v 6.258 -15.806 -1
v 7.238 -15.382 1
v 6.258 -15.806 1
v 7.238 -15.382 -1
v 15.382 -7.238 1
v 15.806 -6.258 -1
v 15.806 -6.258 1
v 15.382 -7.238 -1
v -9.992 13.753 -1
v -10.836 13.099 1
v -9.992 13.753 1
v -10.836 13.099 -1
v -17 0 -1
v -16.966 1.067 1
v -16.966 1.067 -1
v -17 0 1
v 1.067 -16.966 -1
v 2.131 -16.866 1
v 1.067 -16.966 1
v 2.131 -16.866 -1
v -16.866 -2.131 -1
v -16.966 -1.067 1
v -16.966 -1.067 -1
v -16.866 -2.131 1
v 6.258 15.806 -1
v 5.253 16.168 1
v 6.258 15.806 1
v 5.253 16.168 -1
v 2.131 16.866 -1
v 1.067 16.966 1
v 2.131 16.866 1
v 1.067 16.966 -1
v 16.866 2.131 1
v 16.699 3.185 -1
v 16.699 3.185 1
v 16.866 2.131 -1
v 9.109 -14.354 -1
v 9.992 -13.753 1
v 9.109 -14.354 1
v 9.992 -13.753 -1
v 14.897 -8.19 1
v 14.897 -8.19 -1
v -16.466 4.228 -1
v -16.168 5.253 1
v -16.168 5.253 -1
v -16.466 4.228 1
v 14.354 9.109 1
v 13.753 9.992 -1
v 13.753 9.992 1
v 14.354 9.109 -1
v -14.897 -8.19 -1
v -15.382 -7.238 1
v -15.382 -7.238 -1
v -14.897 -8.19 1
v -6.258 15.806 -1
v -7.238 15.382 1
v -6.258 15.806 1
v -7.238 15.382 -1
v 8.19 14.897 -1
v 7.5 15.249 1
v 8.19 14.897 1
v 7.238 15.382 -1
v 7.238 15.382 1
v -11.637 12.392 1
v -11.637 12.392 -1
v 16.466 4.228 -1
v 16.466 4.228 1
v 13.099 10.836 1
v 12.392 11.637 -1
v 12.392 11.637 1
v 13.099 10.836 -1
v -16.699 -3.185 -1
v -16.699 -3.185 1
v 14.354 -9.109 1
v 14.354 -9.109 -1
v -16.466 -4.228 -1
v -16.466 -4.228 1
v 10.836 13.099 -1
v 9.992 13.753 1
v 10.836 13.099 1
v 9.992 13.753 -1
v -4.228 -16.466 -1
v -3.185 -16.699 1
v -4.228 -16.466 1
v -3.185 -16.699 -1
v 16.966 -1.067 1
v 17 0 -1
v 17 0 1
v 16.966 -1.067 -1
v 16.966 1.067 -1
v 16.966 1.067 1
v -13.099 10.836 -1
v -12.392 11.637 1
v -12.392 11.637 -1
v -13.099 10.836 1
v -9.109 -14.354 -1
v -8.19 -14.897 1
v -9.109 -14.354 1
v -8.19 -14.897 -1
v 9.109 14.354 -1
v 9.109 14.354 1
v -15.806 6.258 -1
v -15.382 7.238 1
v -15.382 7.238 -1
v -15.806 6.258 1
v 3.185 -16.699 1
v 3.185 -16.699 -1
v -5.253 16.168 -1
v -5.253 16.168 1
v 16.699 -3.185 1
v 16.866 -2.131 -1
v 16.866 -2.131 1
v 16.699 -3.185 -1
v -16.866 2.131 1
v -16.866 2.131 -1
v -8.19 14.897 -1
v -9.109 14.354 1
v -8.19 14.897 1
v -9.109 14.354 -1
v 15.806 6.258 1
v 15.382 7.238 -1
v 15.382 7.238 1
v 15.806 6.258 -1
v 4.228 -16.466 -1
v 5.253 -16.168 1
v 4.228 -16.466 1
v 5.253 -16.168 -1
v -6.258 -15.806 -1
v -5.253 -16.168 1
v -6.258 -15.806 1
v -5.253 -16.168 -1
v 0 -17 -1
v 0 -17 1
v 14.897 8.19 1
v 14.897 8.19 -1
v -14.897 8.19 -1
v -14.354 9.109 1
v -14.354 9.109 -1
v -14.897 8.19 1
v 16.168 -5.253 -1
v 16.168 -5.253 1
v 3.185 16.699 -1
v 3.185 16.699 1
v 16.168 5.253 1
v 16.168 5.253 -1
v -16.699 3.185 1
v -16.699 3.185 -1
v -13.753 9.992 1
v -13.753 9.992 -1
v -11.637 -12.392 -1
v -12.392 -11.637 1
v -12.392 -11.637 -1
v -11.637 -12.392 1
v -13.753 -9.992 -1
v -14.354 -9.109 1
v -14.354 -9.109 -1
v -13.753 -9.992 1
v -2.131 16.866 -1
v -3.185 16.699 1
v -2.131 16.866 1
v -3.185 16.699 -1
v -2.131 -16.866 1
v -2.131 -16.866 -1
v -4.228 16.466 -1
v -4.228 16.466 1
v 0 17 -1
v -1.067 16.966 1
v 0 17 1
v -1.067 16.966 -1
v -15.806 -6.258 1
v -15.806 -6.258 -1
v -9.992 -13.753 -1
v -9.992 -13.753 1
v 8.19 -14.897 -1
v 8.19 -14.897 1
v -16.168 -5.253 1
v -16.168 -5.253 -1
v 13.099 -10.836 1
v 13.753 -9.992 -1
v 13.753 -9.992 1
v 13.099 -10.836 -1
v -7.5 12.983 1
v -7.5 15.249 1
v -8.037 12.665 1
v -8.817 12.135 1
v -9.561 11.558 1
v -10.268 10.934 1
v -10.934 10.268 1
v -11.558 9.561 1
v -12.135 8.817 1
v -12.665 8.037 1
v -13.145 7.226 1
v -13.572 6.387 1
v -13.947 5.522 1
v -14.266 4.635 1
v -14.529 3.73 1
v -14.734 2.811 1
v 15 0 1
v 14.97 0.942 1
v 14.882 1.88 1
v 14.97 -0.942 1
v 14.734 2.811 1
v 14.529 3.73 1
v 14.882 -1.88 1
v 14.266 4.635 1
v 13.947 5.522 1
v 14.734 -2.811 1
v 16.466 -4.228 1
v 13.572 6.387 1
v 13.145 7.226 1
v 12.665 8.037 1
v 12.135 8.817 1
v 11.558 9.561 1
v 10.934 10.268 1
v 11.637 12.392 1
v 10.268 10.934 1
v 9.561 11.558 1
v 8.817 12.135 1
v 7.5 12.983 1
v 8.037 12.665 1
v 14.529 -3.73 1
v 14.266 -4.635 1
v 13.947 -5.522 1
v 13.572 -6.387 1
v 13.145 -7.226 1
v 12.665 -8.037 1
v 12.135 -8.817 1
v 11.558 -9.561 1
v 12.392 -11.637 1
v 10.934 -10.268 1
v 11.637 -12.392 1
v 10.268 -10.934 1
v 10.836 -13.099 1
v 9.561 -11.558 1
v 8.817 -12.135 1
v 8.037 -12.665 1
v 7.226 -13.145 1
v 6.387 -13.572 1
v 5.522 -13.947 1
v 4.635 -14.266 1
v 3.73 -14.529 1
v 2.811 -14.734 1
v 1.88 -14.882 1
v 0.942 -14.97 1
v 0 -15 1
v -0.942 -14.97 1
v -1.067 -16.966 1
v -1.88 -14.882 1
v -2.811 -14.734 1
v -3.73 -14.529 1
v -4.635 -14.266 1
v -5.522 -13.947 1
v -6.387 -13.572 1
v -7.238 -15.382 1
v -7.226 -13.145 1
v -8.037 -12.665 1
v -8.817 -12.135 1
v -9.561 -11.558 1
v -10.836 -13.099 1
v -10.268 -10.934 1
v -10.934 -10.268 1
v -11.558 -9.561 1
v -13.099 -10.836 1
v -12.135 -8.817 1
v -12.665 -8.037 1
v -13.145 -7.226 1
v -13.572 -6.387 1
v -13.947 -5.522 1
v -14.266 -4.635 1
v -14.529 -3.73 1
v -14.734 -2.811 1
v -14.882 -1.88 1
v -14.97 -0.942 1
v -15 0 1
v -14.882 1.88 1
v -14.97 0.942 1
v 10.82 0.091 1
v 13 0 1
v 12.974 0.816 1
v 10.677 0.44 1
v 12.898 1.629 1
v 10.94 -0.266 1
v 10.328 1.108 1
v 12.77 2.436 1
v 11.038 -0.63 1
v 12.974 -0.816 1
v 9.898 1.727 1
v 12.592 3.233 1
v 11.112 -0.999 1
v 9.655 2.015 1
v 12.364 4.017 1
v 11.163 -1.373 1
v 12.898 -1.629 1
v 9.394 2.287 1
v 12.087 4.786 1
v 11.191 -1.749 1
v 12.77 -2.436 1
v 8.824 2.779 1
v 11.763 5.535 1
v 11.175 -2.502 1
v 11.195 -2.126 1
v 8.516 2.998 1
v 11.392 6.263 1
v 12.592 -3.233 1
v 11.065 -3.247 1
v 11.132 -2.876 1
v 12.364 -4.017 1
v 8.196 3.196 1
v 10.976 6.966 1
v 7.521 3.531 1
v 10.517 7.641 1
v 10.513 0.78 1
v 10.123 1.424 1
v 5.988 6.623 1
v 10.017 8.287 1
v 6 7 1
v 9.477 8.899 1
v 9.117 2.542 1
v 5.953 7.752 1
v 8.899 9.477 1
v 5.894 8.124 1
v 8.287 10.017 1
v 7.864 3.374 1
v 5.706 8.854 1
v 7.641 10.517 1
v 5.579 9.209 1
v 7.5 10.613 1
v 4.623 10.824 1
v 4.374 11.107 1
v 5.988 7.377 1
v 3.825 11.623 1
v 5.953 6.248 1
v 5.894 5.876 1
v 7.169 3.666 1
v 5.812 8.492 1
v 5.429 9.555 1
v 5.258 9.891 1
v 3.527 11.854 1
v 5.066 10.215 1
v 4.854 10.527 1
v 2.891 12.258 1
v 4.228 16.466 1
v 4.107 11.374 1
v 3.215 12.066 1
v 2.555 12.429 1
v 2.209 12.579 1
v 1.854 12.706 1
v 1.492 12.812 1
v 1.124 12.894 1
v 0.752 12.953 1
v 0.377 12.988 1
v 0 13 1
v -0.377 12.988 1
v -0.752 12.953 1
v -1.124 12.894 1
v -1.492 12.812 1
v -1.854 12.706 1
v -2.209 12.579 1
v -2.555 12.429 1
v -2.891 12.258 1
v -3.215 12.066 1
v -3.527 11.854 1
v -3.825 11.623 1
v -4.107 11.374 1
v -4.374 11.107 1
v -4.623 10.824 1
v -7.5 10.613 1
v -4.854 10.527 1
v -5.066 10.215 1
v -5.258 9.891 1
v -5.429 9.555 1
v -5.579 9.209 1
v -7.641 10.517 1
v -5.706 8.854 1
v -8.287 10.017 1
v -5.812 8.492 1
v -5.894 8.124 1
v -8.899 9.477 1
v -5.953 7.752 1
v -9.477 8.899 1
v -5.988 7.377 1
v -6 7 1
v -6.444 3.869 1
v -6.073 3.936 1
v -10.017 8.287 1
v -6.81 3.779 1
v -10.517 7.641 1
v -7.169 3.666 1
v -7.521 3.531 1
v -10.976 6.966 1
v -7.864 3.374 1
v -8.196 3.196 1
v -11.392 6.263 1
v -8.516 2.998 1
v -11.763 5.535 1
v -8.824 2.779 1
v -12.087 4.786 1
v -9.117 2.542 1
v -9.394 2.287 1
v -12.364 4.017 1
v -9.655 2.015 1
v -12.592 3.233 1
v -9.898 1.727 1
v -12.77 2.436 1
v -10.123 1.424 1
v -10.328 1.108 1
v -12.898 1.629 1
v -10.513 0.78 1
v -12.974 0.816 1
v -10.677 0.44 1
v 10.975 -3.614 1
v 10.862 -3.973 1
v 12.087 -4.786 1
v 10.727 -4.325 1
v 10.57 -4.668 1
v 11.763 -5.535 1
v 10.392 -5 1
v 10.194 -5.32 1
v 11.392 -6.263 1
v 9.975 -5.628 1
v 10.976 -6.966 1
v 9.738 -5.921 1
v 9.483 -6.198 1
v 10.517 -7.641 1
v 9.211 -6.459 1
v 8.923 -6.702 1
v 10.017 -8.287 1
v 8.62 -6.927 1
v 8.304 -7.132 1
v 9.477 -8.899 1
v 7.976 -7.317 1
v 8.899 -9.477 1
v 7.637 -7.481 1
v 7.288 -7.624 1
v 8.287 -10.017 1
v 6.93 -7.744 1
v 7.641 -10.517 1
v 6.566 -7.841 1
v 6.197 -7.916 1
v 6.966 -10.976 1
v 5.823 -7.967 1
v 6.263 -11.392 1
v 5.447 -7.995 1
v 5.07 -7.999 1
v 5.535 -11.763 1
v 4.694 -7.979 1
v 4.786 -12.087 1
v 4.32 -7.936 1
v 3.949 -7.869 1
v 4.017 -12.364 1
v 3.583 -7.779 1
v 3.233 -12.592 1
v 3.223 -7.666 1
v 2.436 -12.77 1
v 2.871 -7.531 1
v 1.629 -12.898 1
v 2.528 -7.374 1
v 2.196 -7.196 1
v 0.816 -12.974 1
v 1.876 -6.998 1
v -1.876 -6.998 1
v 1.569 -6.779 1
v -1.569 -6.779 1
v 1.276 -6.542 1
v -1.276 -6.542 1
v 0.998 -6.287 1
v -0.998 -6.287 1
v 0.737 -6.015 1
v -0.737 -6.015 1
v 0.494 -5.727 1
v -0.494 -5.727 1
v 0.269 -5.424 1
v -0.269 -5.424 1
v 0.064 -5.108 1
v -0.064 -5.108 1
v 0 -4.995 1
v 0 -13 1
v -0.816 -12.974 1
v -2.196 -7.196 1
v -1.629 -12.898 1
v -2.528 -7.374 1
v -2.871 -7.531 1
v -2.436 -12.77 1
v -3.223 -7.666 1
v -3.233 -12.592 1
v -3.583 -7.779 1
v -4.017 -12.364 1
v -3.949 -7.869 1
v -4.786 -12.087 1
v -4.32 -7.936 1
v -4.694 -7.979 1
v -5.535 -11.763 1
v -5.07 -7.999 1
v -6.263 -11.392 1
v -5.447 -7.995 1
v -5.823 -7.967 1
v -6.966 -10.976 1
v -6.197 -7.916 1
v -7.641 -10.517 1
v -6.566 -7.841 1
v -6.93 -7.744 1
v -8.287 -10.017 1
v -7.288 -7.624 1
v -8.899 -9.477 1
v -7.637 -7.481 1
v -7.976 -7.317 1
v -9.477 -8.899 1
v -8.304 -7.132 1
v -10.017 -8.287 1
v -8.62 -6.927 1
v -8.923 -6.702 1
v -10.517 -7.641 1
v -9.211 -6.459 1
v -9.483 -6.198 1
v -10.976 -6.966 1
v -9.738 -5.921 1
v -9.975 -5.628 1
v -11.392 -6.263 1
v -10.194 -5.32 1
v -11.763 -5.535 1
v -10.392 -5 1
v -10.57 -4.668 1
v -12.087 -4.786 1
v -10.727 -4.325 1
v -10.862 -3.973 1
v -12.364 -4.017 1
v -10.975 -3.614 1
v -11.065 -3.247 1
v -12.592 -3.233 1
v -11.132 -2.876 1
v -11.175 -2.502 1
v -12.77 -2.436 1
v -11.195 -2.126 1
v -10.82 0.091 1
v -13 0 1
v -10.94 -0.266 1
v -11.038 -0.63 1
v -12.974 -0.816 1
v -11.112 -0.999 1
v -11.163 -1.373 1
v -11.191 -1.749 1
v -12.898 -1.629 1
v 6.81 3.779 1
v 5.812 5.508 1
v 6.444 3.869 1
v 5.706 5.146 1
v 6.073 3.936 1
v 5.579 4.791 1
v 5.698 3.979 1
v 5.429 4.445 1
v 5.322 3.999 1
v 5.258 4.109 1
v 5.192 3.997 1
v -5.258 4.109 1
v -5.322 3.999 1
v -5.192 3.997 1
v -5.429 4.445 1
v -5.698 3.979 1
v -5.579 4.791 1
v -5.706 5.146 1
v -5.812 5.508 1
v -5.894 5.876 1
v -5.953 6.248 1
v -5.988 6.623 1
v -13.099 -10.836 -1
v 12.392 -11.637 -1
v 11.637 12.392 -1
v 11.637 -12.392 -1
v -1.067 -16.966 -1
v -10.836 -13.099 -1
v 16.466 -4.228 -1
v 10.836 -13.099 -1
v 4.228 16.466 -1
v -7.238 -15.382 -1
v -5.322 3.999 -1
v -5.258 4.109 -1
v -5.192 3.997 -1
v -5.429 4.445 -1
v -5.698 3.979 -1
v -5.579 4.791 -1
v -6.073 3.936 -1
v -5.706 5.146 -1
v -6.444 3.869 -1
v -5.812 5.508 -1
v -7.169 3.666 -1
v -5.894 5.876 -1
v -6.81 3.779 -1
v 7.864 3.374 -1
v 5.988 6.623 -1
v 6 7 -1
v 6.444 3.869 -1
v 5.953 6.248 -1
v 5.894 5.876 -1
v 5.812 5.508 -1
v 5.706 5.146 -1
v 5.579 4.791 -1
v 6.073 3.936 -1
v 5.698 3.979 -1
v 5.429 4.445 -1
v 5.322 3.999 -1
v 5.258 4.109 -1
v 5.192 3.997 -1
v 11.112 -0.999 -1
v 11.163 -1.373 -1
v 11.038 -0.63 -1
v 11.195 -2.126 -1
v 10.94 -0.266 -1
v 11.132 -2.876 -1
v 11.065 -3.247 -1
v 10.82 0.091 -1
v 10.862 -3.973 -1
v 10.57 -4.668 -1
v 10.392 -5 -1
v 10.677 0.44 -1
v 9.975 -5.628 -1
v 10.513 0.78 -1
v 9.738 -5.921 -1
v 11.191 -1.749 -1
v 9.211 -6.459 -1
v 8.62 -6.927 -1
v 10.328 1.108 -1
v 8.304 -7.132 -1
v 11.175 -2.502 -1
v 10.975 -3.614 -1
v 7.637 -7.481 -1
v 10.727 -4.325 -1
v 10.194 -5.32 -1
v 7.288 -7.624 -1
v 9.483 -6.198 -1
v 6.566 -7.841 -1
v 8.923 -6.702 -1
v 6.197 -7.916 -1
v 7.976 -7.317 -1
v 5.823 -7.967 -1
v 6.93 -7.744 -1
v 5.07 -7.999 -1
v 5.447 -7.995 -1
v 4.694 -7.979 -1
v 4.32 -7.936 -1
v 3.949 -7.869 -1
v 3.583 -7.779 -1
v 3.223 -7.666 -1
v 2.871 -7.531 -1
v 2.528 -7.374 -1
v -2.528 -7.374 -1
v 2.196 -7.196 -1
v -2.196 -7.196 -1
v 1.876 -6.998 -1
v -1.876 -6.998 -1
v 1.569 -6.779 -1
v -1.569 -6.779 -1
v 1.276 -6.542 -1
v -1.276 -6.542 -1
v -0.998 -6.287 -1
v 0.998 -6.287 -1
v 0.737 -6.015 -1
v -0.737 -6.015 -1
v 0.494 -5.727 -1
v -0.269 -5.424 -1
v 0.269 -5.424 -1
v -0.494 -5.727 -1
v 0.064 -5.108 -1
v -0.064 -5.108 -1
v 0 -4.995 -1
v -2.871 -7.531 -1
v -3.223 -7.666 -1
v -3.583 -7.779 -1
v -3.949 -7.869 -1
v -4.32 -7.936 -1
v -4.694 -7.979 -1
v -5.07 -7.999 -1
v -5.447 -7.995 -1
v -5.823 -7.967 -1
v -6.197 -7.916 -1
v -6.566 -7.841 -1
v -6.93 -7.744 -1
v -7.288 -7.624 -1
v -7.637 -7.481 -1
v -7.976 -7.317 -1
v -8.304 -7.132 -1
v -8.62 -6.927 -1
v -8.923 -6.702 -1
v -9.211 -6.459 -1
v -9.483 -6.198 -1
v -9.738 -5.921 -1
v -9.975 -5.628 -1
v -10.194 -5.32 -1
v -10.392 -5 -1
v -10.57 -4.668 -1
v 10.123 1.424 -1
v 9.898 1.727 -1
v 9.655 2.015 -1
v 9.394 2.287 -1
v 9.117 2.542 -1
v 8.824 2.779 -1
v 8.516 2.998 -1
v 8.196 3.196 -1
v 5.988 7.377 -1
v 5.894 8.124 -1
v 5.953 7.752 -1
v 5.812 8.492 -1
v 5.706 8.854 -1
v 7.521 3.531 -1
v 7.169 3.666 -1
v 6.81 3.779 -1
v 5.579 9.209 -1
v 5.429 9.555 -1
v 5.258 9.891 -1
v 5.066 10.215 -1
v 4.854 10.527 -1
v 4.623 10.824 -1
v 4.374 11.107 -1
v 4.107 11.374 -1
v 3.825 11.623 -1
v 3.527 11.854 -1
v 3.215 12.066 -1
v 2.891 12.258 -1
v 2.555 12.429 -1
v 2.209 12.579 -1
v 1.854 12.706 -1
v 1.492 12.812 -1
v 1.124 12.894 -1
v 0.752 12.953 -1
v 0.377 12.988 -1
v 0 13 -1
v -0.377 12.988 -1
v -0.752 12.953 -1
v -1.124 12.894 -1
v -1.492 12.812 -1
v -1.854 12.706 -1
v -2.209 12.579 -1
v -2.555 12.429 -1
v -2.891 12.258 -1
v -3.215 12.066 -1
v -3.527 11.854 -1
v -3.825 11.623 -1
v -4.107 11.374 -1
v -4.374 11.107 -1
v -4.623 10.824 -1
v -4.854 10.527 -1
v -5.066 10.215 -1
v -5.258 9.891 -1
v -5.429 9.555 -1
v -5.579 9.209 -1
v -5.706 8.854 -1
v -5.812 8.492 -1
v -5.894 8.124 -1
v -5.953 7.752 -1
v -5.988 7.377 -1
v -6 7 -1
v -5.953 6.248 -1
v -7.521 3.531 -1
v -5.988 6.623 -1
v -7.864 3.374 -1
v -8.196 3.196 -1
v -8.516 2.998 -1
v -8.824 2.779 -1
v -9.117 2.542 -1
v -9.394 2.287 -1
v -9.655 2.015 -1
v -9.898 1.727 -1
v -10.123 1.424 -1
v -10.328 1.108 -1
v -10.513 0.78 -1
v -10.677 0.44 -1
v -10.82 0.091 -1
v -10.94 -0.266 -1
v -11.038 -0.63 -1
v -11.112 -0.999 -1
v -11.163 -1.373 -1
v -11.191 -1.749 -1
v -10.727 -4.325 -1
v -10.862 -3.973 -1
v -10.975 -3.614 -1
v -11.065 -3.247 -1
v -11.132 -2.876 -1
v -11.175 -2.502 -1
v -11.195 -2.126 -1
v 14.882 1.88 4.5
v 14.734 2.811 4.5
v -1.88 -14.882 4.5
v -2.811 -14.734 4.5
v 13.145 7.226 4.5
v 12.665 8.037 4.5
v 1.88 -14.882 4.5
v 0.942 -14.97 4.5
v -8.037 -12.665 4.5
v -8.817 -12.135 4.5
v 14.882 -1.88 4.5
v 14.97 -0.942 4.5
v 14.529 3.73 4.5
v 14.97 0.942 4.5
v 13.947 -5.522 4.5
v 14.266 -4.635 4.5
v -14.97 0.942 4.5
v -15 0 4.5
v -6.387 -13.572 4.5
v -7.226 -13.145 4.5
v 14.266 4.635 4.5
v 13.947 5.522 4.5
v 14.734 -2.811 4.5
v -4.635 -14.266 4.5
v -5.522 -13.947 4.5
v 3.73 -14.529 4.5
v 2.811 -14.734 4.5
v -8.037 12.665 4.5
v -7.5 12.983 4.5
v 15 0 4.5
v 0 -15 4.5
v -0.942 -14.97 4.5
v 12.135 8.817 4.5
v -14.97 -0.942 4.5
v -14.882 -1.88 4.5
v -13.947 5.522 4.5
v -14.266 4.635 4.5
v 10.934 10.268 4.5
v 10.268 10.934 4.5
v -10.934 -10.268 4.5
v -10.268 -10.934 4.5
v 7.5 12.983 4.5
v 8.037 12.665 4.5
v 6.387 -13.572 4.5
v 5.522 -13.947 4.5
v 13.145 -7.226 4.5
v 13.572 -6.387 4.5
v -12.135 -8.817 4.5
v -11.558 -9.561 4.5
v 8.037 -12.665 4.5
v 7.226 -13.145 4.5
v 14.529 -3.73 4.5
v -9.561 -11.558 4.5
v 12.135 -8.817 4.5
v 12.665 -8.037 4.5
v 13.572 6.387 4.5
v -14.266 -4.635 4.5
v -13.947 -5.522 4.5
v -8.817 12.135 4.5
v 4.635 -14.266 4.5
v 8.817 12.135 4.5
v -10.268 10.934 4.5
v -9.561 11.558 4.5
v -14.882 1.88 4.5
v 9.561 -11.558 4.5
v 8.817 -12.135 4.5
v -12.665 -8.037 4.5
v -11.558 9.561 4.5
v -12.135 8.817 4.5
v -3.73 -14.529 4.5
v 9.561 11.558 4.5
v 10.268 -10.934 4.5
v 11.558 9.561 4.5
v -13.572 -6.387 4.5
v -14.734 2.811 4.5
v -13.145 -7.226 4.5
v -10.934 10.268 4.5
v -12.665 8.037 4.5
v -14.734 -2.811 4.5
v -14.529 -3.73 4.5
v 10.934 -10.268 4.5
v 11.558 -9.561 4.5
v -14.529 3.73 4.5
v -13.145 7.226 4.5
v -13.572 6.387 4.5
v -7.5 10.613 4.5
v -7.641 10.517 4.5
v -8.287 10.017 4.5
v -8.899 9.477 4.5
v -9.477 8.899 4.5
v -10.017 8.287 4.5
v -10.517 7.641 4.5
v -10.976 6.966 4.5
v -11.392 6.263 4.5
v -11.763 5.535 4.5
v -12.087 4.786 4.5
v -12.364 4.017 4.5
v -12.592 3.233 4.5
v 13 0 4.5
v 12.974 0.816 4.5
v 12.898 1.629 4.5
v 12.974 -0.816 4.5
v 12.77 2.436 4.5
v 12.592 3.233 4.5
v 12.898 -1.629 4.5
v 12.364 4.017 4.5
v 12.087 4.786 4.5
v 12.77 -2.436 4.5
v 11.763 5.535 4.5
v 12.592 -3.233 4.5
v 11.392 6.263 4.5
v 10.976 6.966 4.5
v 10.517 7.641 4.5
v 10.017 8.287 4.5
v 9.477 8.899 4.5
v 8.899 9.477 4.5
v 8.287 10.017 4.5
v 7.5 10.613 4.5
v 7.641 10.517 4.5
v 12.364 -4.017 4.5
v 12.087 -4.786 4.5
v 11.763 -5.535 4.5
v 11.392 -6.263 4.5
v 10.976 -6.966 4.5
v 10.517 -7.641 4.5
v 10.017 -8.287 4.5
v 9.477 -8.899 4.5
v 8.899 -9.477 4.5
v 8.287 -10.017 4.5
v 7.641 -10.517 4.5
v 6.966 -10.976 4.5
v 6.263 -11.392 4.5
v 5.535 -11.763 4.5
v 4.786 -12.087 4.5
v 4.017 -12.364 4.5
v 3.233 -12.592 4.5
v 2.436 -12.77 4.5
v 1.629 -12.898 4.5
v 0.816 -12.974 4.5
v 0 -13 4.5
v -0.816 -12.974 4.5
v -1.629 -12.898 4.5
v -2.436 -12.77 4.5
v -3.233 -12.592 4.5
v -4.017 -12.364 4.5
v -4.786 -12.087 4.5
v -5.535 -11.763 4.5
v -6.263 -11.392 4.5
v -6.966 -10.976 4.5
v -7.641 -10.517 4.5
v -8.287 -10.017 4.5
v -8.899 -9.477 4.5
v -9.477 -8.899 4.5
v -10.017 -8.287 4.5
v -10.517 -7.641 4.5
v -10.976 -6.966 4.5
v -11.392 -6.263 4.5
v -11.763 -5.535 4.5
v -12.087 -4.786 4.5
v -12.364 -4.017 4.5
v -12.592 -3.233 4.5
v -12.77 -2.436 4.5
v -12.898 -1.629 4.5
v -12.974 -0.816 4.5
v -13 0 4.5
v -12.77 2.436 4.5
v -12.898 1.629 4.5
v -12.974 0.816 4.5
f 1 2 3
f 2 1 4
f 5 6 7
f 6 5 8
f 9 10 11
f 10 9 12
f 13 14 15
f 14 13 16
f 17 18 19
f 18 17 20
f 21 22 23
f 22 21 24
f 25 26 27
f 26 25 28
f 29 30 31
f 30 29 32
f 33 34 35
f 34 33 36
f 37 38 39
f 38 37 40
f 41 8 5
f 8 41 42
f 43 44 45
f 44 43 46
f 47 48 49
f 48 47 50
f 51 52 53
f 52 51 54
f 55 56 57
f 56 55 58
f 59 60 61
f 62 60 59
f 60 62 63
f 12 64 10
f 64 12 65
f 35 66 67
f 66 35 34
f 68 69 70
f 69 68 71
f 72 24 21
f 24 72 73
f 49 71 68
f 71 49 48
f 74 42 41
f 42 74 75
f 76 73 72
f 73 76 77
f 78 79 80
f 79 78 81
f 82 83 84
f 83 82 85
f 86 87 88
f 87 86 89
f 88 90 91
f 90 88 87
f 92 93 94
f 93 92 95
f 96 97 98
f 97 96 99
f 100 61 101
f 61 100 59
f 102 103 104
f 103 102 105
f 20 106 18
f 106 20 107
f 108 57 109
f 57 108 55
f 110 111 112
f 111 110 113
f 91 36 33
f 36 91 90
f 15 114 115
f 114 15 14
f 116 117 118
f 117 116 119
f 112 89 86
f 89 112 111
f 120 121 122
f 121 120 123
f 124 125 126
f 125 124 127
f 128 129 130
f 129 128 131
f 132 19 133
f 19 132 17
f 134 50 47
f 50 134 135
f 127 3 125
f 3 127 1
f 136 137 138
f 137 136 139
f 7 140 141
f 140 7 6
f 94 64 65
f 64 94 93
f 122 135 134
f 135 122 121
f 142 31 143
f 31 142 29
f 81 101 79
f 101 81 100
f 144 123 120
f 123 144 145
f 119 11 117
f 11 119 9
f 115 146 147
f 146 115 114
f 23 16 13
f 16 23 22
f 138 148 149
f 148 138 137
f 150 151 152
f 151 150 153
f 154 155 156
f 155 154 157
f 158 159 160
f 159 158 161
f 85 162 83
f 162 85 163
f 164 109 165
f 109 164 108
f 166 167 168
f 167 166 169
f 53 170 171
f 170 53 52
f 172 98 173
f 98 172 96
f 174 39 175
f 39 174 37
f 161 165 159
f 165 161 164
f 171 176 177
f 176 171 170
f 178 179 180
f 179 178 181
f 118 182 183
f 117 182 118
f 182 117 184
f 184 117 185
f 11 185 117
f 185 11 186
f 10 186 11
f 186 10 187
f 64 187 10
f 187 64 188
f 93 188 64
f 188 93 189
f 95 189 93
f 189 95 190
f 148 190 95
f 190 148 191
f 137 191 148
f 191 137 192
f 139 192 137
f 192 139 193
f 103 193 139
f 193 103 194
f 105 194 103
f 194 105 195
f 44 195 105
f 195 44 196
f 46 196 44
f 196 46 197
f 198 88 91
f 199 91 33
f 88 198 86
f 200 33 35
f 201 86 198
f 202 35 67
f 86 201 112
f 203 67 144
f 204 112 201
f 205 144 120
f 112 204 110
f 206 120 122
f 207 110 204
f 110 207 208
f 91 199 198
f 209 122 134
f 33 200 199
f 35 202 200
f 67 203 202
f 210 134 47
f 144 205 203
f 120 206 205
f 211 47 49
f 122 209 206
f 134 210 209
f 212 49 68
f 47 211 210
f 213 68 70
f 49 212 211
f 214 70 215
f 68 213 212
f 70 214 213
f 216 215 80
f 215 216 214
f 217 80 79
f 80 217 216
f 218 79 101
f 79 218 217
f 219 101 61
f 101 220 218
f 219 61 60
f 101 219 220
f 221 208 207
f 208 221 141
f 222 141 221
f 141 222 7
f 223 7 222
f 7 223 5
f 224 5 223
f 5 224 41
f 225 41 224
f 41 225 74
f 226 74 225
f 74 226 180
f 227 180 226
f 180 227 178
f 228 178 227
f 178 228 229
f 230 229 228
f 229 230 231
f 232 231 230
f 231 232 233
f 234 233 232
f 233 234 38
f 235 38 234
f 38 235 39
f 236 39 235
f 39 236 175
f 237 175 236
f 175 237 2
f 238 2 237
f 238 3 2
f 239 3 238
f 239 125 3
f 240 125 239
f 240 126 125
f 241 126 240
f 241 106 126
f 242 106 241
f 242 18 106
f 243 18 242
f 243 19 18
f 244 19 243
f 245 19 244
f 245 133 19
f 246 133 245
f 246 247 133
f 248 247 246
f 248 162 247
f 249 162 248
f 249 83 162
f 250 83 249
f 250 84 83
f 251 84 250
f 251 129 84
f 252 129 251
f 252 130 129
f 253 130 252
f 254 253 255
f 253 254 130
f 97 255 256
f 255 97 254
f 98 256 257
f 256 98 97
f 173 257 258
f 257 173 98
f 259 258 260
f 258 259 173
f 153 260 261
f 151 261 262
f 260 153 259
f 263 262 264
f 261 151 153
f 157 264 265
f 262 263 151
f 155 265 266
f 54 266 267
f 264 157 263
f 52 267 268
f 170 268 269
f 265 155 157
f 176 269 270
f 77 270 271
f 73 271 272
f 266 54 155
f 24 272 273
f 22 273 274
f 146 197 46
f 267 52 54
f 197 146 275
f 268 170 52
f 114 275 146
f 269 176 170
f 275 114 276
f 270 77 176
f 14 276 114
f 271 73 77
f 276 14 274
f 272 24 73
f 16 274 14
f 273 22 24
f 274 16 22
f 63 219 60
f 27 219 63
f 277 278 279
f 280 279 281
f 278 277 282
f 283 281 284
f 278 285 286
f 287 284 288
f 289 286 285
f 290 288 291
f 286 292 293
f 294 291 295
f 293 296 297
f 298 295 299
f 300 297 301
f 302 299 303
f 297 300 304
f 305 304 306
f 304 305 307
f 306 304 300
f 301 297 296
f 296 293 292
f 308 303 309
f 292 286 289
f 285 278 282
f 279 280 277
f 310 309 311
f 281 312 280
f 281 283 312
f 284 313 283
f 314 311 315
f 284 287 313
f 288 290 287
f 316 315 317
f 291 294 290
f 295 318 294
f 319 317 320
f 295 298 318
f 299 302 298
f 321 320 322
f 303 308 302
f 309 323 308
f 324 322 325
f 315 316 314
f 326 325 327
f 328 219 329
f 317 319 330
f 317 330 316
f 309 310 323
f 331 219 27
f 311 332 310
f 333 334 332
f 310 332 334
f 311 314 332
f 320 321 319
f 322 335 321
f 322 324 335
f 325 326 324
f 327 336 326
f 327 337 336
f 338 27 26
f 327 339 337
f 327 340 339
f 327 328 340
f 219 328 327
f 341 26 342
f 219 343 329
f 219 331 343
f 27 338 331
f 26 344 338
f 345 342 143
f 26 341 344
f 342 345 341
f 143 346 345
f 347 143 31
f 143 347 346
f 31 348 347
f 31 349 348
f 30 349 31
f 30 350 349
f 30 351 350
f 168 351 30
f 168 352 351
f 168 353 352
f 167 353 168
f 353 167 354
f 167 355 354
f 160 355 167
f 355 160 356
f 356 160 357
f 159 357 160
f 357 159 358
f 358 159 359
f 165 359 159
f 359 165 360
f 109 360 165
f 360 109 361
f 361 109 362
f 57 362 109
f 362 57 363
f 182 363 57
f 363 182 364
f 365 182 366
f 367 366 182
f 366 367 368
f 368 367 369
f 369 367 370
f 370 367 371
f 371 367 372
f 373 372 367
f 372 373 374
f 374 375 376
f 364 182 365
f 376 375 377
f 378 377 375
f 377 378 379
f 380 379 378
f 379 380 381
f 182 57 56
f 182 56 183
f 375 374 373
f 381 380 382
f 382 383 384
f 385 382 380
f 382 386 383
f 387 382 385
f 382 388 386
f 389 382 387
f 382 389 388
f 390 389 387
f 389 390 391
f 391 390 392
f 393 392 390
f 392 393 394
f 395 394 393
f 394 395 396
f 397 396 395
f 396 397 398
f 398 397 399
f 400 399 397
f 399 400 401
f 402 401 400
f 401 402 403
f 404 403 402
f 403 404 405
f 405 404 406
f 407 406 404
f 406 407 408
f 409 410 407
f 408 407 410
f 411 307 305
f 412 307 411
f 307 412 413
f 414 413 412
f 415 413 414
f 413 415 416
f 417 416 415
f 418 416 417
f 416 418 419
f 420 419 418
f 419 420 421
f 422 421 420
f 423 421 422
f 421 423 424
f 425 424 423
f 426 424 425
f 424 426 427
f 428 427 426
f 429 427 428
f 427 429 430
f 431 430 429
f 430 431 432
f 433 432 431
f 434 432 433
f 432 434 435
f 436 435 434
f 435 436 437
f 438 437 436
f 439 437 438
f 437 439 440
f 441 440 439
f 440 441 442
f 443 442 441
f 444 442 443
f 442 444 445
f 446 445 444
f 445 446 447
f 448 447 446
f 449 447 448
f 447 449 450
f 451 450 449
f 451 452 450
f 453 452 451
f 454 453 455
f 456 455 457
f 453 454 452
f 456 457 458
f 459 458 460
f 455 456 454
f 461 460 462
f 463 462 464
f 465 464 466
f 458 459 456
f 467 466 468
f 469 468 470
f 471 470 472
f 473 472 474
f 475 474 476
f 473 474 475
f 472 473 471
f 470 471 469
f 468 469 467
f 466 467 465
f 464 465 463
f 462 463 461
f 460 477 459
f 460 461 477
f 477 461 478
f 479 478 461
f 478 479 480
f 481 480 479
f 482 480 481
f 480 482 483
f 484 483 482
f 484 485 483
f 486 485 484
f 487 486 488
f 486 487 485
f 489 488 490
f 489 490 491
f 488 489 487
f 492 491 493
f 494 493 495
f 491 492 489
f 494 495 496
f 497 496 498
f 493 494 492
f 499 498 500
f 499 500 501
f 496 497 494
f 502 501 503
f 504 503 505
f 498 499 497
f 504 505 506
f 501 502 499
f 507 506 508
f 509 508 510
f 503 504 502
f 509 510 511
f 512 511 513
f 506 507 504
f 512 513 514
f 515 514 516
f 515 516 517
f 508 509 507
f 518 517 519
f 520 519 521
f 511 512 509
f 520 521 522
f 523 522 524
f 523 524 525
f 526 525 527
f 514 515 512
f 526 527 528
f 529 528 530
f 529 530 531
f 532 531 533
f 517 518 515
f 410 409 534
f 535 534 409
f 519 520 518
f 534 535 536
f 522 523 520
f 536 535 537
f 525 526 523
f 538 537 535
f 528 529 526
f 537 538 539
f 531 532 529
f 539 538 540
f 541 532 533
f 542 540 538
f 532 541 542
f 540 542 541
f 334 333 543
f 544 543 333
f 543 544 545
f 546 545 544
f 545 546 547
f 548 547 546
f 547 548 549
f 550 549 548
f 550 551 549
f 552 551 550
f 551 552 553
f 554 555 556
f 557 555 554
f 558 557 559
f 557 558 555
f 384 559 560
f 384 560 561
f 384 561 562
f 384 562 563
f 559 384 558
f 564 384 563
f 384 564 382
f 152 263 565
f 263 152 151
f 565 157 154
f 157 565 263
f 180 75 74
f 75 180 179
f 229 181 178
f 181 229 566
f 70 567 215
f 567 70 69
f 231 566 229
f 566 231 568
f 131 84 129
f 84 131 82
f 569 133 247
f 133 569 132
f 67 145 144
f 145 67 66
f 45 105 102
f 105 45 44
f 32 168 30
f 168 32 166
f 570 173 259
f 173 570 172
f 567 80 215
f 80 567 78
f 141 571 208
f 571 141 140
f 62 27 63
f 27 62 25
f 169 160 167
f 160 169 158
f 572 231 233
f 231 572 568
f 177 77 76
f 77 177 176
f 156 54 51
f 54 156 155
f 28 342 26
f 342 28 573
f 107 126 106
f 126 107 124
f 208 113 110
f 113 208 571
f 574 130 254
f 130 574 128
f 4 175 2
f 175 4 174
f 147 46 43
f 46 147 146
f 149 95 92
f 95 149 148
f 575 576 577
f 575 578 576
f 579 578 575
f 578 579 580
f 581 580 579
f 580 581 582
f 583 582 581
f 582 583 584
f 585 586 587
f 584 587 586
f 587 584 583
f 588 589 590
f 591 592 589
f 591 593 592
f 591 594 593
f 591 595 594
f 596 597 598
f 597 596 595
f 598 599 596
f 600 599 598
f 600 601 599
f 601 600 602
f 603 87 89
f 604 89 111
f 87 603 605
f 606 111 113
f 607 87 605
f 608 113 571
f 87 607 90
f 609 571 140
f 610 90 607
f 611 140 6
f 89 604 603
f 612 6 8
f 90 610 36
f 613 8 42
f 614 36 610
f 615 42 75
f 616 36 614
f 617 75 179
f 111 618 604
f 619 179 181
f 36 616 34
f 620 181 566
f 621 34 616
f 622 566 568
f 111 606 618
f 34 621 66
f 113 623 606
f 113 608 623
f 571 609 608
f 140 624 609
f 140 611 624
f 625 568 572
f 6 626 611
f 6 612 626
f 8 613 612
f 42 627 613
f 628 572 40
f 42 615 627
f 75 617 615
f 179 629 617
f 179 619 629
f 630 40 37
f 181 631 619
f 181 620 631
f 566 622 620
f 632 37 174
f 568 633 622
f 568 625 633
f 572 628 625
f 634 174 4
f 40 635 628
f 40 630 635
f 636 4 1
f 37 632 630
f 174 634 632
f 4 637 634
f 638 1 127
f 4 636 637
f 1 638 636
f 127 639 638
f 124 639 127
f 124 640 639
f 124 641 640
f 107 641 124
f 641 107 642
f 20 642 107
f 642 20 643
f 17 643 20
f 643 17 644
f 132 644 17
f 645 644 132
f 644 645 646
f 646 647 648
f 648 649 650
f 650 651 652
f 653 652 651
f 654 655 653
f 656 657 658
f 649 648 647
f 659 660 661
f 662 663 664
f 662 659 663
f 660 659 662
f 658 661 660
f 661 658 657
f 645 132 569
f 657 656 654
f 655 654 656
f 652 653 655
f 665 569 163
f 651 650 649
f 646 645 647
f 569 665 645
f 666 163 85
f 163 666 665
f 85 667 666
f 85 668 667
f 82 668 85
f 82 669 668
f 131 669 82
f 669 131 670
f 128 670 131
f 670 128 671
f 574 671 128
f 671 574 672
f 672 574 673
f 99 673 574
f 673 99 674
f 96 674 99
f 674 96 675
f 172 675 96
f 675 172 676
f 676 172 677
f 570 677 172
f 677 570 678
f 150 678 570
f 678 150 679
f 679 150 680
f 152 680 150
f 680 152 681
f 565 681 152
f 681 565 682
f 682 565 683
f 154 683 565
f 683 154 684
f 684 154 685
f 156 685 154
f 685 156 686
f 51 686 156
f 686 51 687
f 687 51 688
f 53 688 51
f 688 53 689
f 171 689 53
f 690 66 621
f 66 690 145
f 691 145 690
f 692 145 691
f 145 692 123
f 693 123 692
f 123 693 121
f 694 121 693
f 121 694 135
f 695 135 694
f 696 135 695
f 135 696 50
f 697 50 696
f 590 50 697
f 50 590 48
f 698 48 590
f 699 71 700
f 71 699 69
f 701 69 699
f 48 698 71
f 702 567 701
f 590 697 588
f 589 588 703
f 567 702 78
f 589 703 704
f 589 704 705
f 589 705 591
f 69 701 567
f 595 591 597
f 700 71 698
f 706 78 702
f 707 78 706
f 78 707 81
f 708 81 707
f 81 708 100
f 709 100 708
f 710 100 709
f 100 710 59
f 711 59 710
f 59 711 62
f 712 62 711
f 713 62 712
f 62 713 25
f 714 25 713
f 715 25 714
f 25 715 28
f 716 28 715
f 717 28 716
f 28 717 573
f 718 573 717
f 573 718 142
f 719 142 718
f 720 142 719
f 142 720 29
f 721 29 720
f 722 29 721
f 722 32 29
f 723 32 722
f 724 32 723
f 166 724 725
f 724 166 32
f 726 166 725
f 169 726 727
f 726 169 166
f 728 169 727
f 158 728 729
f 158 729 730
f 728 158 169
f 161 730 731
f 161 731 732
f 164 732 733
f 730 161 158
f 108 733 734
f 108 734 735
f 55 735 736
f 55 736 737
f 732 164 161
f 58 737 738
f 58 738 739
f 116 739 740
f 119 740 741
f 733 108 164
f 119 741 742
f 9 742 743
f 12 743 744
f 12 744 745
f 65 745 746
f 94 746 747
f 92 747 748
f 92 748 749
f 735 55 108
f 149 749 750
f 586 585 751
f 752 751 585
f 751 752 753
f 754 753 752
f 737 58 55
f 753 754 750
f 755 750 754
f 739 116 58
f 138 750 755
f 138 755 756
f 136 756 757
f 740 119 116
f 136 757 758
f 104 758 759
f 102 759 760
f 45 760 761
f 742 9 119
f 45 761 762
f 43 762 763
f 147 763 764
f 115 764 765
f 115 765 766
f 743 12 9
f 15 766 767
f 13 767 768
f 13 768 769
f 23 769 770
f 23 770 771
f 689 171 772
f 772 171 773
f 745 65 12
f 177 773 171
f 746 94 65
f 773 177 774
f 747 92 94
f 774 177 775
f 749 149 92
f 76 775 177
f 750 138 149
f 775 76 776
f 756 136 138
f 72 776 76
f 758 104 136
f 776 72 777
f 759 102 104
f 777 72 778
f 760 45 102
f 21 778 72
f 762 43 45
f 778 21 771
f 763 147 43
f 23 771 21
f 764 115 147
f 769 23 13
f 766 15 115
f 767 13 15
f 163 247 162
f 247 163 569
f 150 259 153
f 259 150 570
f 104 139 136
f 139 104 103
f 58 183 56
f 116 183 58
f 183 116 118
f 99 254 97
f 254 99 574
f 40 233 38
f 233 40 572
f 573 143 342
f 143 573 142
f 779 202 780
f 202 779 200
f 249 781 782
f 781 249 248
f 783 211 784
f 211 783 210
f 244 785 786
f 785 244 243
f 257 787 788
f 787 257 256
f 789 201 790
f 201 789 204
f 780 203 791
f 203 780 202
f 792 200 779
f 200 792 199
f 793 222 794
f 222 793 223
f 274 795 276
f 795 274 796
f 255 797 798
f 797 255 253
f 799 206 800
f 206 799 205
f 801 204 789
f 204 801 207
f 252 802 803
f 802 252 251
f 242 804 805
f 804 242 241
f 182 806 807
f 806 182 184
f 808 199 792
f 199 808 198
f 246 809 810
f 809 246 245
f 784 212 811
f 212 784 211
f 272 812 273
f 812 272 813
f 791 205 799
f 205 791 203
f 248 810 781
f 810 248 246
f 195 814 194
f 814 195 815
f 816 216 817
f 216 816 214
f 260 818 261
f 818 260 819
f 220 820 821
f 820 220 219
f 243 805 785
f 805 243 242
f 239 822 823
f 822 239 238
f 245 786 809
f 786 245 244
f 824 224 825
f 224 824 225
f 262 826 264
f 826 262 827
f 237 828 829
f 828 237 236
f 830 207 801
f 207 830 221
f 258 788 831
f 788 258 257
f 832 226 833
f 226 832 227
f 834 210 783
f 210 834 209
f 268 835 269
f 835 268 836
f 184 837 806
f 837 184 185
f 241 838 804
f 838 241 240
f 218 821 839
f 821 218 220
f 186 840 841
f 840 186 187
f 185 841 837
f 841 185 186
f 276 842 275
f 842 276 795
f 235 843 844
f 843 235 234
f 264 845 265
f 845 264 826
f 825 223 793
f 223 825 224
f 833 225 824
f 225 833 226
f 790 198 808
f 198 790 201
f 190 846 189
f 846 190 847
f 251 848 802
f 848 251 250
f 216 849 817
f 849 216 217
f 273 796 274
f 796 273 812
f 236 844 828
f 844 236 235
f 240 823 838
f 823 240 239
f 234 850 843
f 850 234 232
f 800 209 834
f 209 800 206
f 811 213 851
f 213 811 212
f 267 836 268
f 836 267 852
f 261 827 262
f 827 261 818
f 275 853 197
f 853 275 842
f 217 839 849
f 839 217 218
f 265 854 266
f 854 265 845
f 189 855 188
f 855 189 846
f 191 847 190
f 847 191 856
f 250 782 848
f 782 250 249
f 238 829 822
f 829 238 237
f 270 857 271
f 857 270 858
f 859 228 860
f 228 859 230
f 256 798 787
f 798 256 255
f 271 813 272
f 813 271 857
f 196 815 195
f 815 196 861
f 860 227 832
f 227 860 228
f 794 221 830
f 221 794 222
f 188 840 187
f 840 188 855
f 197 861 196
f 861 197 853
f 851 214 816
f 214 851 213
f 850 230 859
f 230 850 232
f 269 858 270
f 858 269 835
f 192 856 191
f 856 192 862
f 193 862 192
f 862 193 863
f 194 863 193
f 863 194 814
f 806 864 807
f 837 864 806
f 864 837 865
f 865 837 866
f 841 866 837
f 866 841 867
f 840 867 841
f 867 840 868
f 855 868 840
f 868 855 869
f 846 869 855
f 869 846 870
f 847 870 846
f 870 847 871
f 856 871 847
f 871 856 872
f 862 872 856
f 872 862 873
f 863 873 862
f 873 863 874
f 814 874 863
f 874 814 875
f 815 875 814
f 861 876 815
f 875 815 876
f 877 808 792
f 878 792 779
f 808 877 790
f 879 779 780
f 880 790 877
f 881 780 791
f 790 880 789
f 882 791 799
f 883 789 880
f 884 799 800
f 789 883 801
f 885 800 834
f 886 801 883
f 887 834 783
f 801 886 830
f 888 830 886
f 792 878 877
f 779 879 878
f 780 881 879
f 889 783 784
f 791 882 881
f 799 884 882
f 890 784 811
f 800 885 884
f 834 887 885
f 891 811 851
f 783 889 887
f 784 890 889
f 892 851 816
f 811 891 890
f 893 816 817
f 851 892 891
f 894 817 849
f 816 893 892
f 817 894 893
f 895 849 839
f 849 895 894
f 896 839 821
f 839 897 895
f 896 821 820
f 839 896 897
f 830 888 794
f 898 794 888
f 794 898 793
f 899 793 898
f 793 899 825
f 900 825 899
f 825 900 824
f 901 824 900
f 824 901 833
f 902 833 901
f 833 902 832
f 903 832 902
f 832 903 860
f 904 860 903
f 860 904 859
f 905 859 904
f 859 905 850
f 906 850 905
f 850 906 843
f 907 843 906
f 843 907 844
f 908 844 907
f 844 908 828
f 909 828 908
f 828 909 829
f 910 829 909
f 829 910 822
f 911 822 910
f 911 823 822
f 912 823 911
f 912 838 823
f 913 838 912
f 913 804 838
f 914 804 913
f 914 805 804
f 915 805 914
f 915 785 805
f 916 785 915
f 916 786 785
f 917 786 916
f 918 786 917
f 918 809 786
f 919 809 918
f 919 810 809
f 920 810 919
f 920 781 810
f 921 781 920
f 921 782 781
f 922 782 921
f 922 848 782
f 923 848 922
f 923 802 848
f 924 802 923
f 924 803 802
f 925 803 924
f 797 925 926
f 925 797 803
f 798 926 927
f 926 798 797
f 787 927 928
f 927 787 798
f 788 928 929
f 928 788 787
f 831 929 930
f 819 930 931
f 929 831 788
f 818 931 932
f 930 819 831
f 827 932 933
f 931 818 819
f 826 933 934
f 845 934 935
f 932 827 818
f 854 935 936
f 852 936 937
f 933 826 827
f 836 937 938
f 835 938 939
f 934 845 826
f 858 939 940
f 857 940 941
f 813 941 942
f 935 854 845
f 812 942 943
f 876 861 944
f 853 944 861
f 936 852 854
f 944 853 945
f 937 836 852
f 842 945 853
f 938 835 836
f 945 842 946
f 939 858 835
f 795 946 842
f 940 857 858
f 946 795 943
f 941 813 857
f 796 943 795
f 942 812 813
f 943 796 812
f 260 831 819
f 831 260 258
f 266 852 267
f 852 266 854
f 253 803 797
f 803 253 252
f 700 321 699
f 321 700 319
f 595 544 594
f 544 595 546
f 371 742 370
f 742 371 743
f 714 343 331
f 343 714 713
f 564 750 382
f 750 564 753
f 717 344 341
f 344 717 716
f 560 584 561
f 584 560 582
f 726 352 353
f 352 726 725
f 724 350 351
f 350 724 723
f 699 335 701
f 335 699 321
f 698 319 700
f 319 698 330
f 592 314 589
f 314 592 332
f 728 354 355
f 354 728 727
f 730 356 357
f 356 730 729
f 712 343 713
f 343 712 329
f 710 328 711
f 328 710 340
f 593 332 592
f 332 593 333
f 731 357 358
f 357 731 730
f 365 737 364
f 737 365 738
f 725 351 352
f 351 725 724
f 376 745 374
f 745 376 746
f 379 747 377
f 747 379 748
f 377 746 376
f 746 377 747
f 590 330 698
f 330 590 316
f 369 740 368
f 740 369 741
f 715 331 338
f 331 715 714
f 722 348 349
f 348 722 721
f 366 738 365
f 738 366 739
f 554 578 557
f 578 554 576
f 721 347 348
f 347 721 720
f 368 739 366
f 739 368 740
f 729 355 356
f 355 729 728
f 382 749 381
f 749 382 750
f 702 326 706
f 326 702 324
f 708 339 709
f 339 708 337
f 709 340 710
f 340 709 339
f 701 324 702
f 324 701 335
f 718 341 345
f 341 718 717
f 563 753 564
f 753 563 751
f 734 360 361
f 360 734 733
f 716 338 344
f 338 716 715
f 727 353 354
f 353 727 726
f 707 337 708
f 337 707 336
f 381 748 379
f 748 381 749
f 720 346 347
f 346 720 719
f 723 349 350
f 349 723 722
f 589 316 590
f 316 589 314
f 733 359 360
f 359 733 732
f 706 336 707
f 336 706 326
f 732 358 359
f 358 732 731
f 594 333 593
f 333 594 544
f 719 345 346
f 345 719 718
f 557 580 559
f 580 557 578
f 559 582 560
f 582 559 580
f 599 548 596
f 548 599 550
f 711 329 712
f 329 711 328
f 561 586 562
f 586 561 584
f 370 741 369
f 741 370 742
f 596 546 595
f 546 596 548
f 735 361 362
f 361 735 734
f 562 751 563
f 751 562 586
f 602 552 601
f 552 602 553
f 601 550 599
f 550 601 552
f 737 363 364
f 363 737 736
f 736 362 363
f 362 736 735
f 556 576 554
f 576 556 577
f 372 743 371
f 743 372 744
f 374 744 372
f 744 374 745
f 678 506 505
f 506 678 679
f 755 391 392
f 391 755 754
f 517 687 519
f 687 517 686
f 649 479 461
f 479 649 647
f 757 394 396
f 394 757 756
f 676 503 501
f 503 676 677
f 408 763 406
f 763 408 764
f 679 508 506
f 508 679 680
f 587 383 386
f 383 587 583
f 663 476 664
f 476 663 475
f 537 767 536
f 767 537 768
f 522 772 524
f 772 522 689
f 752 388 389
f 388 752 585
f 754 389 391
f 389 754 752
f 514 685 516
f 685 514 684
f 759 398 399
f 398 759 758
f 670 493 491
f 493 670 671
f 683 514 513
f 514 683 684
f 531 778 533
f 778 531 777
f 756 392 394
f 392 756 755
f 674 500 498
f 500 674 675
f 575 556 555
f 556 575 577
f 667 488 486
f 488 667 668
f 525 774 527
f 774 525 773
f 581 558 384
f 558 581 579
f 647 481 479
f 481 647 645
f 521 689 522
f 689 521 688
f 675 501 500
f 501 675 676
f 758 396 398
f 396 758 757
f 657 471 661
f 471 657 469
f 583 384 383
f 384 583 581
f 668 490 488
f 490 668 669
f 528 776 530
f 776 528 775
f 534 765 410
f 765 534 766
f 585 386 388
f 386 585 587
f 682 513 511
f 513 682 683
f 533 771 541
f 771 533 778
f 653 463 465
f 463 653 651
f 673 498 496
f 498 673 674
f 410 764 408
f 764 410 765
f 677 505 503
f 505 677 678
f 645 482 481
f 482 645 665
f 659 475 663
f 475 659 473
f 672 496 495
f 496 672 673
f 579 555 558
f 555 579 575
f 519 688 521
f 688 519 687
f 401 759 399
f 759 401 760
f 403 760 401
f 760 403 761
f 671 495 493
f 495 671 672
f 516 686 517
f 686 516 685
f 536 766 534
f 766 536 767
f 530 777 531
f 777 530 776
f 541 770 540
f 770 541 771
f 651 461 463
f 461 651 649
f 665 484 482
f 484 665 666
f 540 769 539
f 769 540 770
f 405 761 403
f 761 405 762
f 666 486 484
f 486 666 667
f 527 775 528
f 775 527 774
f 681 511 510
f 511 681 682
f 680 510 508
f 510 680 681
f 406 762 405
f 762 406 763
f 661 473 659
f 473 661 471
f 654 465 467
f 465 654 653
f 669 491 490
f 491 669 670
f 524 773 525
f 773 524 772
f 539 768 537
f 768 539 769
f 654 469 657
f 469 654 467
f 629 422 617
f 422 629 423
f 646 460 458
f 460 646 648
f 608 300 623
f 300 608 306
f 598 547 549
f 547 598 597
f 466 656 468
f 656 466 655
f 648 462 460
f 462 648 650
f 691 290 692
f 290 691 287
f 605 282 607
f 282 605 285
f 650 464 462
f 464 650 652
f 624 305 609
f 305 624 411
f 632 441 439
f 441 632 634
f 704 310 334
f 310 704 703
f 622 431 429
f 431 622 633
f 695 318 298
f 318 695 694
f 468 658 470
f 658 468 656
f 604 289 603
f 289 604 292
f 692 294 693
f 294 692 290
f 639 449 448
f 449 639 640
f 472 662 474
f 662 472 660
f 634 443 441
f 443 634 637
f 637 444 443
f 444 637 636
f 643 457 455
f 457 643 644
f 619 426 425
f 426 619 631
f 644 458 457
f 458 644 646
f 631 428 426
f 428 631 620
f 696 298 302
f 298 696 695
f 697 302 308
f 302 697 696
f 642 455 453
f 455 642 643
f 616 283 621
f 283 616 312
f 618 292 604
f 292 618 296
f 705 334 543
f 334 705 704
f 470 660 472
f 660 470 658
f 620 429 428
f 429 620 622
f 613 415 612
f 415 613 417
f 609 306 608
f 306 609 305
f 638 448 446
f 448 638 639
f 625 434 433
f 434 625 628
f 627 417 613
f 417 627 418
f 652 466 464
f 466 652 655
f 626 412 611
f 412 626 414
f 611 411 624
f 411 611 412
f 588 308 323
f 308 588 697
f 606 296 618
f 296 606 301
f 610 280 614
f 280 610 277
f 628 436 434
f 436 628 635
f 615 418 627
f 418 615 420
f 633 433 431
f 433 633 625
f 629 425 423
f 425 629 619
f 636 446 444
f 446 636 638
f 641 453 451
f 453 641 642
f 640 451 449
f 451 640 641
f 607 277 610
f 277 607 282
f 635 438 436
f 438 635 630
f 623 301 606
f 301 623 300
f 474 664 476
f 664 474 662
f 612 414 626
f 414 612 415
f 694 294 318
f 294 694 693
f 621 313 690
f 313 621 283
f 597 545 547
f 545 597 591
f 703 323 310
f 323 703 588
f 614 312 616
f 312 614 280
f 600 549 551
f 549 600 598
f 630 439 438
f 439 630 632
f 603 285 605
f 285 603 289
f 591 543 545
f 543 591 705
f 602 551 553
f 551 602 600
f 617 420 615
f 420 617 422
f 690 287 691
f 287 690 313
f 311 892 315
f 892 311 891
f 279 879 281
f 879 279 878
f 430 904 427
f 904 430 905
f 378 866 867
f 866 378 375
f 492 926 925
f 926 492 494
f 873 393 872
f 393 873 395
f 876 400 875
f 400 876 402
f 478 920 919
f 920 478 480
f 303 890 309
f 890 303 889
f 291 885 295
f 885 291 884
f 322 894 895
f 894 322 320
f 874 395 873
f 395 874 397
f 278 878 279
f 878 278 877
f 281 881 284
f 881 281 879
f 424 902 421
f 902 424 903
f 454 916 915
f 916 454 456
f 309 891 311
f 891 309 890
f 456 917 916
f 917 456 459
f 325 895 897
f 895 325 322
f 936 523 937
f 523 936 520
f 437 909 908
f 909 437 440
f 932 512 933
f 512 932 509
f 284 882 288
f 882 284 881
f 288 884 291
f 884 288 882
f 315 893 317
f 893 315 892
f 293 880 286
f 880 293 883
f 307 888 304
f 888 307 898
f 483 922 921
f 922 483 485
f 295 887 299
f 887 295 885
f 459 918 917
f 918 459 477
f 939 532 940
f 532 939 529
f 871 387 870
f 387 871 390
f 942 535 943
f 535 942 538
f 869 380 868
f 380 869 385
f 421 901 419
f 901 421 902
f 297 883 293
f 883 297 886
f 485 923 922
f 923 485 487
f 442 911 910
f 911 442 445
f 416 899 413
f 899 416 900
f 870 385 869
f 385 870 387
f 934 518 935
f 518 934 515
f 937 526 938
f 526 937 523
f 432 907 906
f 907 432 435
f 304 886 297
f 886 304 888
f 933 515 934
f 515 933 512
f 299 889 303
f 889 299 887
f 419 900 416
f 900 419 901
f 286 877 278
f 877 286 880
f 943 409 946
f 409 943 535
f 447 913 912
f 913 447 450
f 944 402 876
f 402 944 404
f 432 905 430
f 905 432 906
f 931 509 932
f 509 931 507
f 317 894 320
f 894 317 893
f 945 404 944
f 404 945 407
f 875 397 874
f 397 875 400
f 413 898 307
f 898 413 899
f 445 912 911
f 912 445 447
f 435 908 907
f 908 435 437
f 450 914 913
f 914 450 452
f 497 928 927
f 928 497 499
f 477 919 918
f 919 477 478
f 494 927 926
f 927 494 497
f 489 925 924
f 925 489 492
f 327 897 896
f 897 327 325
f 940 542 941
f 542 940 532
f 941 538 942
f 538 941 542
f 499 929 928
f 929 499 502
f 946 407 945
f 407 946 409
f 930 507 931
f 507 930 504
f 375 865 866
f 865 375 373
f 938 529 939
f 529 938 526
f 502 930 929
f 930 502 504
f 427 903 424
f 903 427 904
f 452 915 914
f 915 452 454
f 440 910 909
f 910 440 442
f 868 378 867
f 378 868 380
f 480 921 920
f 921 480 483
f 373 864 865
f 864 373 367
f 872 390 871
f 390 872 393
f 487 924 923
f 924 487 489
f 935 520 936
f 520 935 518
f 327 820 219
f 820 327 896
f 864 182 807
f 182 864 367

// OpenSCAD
//
// ktHOLDER6
//
//


gap1 = 0.001;
gap2 = 0.002;

th = 2;

main = 31;
mmrg = 3;
main2 = 31;
mmrg2 = 0;
sub = 12;
smrg = 0;



difference()
{
    union()
    {
        translate([0, 0, 0]) cylinder(h=2, r=(main+mmrg)/2, center=true, $fn=100);
        translate([0, 0, 2]) cylinder(h=5, r=(main2+mmrg2)/2-0.5, center=true, $fn=100);
    }
    
    translate([0, main/2-14.5, 0])
    {
        translate([0, sub/2, 0]) cylinder(h=20, r=(sub+smrg)/2, center=true, $fn=100);
        rotate([0, 0, 120]) translate([0, sub/2, 0]) cylinder(h=20, r=(sub+smrg)/2, center=true, $fn=100);
        rotate([0, 0, -120]) translate([0, sub/2, 0]) cylinder(h=20, r=(sub+smrg)/2, center=true, $fn=100);
        translate([0, -1, 20/2+2/2]) cylinder(h=20, r=13, center=true, $fn=100);
    }
    
    translate([-15/2, 0, 2/2]) cube([15, 30, 5]);

}
